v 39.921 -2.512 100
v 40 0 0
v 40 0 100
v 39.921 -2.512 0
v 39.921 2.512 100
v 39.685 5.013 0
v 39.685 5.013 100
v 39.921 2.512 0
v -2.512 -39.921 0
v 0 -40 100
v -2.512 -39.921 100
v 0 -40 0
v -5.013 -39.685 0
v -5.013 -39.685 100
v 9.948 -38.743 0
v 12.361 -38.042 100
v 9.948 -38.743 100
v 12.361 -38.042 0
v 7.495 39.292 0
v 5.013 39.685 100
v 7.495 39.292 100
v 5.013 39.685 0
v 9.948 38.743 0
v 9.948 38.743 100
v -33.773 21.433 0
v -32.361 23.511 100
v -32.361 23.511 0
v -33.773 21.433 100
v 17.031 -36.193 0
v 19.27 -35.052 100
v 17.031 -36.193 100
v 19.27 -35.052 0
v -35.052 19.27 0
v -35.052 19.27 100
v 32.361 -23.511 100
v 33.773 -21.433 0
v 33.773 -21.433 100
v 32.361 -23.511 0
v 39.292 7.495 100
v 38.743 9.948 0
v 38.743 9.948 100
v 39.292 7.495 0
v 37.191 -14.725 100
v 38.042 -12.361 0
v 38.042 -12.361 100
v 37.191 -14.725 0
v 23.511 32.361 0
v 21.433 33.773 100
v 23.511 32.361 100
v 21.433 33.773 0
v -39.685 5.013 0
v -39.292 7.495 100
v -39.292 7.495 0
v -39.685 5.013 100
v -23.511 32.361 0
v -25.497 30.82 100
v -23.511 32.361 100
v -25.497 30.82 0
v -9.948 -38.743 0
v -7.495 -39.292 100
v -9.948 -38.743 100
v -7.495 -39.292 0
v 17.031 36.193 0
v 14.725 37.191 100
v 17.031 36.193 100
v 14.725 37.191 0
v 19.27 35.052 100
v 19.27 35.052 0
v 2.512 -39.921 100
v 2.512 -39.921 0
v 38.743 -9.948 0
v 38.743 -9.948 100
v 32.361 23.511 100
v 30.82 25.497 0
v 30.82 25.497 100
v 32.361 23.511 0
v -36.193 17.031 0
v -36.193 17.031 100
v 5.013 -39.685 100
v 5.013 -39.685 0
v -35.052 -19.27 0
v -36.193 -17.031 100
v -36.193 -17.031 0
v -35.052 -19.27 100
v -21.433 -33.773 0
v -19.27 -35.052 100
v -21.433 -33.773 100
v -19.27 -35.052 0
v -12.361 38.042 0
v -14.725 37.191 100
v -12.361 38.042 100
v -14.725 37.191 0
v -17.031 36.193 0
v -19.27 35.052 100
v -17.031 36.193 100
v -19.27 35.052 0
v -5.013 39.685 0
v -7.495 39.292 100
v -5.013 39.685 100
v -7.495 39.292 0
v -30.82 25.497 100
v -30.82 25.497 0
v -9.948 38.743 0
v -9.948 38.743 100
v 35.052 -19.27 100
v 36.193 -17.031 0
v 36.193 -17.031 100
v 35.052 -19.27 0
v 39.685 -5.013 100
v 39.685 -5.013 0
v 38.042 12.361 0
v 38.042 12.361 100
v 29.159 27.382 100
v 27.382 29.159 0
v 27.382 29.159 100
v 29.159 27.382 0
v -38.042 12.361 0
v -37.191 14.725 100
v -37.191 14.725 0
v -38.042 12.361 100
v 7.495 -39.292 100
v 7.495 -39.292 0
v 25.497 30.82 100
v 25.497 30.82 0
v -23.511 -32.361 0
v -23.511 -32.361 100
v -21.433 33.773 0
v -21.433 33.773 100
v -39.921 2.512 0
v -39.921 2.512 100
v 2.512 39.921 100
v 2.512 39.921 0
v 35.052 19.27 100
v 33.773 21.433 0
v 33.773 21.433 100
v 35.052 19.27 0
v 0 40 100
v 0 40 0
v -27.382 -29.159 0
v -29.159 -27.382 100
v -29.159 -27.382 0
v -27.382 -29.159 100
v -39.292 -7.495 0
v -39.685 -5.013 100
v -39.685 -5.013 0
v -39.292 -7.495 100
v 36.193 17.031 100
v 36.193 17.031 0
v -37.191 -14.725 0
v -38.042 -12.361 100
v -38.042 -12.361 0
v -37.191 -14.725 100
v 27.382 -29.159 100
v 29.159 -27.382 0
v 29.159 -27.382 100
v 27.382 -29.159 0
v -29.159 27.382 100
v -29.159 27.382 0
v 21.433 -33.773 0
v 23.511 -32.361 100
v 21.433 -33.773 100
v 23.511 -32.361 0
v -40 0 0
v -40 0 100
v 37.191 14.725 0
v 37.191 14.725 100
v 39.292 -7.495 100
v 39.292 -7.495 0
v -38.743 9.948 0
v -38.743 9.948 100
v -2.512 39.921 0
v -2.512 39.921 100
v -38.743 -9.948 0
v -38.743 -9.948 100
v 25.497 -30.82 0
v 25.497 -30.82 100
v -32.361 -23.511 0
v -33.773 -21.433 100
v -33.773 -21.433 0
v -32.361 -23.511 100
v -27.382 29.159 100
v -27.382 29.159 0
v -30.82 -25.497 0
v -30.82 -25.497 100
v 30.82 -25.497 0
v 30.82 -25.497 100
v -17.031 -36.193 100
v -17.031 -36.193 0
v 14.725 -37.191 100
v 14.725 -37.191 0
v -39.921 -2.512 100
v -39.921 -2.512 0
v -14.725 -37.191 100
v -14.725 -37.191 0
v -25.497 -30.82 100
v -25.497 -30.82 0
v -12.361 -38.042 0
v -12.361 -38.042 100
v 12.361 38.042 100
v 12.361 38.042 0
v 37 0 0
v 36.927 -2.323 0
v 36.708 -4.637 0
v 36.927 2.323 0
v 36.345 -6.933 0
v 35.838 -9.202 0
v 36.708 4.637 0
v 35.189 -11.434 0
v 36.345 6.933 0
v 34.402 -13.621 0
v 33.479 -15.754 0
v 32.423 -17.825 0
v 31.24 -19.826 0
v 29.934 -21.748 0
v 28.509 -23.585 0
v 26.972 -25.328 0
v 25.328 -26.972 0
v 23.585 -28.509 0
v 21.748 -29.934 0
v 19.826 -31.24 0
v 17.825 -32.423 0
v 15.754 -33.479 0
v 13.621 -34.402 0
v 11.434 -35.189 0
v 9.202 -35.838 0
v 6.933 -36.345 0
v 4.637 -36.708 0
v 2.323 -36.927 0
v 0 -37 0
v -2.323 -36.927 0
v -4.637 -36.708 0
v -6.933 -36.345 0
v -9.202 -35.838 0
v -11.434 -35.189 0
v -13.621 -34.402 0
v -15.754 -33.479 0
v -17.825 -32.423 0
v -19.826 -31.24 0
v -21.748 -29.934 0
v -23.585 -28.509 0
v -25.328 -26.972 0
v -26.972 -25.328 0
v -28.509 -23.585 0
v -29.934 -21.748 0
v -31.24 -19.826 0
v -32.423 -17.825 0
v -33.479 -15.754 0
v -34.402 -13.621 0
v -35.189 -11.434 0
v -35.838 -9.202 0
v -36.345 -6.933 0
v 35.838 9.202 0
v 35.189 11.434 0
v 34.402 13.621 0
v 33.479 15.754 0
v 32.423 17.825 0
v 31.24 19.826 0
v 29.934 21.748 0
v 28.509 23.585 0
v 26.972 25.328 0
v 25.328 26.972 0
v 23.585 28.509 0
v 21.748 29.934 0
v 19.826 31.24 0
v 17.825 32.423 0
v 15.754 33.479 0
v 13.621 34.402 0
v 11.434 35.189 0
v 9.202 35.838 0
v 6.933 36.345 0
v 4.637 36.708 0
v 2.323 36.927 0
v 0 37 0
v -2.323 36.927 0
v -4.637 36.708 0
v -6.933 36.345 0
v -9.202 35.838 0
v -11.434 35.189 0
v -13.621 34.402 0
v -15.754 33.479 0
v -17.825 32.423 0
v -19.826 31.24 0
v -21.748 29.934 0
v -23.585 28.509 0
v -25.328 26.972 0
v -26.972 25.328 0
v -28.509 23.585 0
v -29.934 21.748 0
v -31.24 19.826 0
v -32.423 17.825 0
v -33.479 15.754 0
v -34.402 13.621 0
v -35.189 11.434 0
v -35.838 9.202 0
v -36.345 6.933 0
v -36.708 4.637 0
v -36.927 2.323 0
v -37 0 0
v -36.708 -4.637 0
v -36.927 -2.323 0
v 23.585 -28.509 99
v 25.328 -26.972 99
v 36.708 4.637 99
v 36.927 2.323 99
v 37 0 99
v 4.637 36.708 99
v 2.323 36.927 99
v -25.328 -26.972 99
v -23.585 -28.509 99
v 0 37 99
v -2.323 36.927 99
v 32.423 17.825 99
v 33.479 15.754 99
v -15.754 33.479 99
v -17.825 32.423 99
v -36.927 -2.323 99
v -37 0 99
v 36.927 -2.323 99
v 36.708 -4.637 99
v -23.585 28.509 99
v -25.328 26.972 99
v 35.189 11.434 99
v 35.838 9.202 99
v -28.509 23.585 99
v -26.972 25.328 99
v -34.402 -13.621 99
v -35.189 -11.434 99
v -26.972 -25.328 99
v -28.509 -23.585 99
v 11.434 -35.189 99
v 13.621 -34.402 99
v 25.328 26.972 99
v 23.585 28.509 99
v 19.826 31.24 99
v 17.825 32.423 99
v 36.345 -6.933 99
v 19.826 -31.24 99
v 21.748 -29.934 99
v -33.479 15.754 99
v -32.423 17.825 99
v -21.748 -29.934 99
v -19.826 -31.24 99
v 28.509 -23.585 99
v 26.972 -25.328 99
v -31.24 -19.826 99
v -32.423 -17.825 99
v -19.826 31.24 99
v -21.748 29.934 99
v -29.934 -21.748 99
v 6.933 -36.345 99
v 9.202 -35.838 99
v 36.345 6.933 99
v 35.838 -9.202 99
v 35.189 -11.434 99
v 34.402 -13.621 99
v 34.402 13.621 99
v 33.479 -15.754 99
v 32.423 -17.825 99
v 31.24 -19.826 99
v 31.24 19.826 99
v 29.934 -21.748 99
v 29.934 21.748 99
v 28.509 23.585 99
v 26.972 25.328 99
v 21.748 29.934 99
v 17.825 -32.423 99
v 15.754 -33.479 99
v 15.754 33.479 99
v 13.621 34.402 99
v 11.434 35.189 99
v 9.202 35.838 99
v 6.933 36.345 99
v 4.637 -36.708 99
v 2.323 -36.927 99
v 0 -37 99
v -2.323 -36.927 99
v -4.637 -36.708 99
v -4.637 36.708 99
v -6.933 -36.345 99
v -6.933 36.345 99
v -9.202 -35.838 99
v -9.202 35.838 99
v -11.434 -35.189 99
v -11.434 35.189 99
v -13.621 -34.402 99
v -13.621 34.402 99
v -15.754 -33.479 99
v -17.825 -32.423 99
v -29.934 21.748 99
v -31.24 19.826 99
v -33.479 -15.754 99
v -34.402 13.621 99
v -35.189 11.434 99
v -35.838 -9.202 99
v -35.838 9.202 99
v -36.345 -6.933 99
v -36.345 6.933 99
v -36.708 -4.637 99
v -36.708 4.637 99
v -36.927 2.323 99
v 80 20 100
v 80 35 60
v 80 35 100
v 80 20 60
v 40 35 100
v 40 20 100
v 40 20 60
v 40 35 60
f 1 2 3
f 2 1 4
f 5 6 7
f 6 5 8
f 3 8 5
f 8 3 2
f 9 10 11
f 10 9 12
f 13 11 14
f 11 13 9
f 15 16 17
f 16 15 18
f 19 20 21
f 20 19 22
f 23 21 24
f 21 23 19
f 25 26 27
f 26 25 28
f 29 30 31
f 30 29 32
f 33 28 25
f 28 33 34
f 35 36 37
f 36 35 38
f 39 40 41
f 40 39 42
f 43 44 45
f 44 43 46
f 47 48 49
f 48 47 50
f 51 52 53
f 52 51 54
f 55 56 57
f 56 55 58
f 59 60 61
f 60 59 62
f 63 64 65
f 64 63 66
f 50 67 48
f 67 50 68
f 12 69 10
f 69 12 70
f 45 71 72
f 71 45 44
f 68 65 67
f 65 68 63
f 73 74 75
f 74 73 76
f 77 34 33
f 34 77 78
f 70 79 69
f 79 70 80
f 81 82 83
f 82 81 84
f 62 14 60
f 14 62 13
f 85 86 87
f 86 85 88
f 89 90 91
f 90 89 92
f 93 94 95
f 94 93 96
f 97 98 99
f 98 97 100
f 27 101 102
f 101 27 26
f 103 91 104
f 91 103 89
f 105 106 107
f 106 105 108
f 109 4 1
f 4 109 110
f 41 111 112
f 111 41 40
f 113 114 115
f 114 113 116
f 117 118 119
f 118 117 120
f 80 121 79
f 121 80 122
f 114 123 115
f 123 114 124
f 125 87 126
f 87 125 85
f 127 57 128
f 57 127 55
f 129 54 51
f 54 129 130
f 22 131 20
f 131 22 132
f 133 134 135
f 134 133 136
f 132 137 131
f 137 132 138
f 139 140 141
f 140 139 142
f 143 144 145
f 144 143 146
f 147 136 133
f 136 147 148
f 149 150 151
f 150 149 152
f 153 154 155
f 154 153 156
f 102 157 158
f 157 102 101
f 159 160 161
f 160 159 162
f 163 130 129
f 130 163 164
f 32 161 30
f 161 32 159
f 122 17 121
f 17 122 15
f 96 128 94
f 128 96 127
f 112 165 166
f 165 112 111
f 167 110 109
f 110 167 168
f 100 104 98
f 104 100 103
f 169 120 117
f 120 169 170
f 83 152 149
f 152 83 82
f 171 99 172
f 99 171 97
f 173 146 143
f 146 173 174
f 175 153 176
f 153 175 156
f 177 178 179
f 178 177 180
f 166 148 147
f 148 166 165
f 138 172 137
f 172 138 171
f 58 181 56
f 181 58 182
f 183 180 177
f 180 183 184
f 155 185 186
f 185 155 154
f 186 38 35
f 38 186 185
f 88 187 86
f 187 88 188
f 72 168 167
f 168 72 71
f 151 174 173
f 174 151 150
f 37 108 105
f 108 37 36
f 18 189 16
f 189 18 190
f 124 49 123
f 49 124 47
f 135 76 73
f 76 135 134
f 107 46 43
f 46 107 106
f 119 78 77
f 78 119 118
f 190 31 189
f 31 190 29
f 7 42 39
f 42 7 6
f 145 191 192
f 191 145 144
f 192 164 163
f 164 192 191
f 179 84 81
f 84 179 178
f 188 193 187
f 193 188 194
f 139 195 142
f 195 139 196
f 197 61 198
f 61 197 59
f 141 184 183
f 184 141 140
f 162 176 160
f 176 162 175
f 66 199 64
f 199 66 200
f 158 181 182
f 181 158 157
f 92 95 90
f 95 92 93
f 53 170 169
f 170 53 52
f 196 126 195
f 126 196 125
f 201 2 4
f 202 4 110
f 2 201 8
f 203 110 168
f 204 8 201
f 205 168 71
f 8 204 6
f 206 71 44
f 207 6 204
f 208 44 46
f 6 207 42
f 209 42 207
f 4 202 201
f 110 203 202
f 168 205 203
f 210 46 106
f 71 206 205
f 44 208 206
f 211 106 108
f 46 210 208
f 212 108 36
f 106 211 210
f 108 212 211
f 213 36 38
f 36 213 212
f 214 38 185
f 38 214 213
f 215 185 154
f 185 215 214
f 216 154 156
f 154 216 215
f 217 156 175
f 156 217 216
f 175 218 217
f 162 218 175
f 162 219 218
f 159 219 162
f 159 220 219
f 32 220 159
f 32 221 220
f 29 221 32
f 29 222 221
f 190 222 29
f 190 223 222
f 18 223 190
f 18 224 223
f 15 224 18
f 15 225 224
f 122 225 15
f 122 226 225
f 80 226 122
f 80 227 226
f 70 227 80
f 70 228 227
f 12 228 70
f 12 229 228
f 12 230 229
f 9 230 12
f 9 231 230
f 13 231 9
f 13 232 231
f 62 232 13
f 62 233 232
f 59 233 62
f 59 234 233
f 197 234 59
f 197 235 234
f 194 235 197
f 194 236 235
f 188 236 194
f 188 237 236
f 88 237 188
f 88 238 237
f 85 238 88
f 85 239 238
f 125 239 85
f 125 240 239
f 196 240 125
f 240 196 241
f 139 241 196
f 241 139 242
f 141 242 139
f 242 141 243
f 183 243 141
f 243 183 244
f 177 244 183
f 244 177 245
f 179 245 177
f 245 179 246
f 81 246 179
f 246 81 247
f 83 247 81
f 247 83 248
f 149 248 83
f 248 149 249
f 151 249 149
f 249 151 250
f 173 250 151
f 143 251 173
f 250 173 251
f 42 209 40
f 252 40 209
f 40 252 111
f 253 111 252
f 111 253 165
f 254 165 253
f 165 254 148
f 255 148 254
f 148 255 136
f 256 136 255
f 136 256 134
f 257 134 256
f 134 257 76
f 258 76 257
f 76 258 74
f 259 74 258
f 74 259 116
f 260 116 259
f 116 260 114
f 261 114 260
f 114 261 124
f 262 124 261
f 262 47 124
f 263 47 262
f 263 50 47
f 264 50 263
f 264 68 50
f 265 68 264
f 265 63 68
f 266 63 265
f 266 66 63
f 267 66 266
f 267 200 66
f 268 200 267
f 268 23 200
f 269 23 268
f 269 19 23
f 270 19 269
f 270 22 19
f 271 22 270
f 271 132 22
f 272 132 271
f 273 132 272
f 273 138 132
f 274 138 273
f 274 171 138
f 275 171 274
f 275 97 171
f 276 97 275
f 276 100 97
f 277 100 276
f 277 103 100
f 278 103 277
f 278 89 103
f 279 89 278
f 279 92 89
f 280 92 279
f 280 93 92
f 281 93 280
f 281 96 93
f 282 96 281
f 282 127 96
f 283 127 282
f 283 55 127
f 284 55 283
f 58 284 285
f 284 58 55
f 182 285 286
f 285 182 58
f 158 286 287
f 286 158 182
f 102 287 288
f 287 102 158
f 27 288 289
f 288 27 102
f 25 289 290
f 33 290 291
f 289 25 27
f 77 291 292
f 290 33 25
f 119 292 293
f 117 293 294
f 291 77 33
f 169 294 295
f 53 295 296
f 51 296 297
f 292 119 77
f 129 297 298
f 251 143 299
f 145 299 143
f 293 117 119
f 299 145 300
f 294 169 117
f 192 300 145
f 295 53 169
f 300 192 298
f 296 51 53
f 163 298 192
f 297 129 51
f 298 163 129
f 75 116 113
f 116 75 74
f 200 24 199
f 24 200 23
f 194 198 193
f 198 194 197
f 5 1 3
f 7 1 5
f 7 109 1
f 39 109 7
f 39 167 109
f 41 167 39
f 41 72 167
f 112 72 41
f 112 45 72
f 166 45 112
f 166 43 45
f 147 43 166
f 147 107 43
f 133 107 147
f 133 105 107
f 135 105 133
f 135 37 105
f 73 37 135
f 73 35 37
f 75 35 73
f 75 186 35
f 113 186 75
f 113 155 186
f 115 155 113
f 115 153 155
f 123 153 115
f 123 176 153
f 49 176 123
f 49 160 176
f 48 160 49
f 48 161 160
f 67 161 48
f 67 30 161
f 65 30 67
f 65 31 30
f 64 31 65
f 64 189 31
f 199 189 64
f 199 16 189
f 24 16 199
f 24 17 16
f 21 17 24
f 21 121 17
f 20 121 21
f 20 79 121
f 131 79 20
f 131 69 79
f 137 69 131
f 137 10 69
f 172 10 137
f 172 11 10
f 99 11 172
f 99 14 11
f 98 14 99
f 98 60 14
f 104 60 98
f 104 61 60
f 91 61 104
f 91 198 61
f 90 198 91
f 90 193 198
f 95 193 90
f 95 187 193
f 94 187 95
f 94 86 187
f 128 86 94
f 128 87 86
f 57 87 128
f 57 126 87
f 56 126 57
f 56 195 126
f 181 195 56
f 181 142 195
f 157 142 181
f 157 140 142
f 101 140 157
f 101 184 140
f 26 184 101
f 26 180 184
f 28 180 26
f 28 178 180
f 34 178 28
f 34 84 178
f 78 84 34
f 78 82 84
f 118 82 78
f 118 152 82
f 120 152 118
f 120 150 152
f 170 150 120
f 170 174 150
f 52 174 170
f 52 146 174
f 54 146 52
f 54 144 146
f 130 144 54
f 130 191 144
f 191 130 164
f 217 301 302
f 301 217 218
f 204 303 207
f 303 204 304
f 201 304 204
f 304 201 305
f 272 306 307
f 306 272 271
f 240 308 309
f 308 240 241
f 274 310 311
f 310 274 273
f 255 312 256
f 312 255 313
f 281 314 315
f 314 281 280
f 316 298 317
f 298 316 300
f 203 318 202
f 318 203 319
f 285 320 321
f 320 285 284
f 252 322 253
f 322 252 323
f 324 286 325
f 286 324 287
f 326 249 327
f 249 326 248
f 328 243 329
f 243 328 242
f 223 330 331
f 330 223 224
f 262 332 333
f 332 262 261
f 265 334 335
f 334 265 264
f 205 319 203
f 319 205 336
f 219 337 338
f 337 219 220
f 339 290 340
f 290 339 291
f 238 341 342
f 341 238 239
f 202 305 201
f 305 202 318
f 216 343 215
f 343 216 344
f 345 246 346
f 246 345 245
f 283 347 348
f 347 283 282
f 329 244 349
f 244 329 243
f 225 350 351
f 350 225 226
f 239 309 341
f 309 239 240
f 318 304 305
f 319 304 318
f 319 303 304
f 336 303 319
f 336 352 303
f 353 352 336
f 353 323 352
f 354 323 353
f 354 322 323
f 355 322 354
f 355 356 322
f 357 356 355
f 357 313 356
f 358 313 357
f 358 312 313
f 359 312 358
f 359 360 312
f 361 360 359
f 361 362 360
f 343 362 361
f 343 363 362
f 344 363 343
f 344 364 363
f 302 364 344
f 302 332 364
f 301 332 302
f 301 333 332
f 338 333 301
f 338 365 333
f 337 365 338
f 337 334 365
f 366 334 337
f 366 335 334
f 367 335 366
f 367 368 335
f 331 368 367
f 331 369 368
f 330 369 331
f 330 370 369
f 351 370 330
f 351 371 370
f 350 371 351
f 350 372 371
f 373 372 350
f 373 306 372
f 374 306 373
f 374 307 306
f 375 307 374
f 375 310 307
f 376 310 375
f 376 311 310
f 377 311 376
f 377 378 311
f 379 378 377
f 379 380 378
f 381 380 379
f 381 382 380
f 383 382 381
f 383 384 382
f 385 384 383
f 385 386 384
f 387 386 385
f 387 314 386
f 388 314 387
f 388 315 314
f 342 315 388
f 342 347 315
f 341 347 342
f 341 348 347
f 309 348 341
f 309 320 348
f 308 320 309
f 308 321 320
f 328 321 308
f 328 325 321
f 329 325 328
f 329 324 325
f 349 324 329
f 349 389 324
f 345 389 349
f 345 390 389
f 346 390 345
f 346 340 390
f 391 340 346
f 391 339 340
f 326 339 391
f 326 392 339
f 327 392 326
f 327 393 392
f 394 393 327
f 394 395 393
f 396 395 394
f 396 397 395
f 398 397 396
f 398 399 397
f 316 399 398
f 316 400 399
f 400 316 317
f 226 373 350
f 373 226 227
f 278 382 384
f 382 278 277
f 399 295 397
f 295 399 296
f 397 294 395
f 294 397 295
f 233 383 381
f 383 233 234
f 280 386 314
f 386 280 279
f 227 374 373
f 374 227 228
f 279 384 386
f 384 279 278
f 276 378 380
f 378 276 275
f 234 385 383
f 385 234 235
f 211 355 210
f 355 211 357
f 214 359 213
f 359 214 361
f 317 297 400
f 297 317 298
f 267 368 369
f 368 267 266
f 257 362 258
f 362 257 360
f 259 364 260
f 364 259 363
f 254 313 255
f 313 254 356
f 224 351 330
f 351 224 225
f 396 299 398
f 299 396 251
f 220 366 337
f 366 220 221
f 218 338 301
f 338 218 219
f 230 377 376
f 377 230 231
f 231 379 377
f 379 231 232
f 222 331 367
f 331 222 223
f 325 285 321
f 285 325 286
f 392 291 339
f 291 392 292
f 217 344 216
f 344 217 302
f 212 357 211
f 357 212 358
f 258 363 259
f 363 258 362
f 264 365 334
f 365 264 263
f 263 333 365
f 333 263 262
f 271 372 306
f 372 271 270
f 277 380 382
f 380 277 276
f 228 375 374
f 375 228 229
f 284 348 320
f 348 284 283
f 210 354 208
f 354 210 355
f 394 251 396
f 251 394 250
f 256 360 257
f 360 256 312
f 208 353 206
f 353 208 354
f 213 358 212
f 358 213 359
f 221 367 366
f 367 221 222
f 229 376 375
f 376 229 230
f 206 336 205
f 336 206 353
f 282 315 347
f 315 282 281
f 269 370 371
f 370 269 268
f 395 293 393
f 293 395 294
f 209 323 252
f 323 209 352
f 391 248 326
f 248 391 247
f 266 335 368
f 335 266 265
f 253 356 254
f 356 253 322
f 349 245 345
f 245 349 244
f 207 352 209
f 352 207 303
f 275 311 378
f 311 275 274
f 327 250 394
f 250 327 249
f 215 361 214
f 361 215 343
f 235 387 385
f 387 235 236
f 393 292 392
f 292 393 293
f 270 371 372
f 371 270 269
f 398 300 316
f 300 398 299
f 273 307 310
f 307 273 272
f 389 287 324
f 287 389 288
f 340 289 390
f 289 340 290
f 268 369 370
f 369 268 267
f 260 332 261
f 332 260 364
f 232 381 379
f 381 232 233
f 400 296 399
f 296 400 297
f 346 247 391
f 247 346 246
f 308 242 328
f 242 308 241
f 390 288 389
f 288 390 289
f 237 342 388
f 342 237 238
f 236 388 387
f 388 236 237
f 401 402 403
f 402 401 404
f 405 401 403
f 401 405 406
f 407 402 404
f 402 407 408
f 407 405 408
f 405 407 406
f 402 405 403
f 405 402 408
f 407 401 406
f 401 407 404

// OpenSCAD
// Mug Parameters
mug_height = 100;
mug_diameter = 80;
mug_wall_thickness = 3;
handle_height = 40;
handle_width = 40;
handle_depth = 15;
handle_offset_x = 40;
handle_offset_y = 20;

// Cylinder for the mug body
difference() {
  cylinder(h = mug_height, d = mug_diameter, $fn = 100);
  cylinder(h = mug_height - 1, d = mug_diameter - 2 * mug_wall_thickness, $fn = 100);
}

// Handle
translate([handle_offset_x, handle_offset_y, mug_height - handle_height]) {
  cube([handle_width, handle_depth, handle_height]);
}
